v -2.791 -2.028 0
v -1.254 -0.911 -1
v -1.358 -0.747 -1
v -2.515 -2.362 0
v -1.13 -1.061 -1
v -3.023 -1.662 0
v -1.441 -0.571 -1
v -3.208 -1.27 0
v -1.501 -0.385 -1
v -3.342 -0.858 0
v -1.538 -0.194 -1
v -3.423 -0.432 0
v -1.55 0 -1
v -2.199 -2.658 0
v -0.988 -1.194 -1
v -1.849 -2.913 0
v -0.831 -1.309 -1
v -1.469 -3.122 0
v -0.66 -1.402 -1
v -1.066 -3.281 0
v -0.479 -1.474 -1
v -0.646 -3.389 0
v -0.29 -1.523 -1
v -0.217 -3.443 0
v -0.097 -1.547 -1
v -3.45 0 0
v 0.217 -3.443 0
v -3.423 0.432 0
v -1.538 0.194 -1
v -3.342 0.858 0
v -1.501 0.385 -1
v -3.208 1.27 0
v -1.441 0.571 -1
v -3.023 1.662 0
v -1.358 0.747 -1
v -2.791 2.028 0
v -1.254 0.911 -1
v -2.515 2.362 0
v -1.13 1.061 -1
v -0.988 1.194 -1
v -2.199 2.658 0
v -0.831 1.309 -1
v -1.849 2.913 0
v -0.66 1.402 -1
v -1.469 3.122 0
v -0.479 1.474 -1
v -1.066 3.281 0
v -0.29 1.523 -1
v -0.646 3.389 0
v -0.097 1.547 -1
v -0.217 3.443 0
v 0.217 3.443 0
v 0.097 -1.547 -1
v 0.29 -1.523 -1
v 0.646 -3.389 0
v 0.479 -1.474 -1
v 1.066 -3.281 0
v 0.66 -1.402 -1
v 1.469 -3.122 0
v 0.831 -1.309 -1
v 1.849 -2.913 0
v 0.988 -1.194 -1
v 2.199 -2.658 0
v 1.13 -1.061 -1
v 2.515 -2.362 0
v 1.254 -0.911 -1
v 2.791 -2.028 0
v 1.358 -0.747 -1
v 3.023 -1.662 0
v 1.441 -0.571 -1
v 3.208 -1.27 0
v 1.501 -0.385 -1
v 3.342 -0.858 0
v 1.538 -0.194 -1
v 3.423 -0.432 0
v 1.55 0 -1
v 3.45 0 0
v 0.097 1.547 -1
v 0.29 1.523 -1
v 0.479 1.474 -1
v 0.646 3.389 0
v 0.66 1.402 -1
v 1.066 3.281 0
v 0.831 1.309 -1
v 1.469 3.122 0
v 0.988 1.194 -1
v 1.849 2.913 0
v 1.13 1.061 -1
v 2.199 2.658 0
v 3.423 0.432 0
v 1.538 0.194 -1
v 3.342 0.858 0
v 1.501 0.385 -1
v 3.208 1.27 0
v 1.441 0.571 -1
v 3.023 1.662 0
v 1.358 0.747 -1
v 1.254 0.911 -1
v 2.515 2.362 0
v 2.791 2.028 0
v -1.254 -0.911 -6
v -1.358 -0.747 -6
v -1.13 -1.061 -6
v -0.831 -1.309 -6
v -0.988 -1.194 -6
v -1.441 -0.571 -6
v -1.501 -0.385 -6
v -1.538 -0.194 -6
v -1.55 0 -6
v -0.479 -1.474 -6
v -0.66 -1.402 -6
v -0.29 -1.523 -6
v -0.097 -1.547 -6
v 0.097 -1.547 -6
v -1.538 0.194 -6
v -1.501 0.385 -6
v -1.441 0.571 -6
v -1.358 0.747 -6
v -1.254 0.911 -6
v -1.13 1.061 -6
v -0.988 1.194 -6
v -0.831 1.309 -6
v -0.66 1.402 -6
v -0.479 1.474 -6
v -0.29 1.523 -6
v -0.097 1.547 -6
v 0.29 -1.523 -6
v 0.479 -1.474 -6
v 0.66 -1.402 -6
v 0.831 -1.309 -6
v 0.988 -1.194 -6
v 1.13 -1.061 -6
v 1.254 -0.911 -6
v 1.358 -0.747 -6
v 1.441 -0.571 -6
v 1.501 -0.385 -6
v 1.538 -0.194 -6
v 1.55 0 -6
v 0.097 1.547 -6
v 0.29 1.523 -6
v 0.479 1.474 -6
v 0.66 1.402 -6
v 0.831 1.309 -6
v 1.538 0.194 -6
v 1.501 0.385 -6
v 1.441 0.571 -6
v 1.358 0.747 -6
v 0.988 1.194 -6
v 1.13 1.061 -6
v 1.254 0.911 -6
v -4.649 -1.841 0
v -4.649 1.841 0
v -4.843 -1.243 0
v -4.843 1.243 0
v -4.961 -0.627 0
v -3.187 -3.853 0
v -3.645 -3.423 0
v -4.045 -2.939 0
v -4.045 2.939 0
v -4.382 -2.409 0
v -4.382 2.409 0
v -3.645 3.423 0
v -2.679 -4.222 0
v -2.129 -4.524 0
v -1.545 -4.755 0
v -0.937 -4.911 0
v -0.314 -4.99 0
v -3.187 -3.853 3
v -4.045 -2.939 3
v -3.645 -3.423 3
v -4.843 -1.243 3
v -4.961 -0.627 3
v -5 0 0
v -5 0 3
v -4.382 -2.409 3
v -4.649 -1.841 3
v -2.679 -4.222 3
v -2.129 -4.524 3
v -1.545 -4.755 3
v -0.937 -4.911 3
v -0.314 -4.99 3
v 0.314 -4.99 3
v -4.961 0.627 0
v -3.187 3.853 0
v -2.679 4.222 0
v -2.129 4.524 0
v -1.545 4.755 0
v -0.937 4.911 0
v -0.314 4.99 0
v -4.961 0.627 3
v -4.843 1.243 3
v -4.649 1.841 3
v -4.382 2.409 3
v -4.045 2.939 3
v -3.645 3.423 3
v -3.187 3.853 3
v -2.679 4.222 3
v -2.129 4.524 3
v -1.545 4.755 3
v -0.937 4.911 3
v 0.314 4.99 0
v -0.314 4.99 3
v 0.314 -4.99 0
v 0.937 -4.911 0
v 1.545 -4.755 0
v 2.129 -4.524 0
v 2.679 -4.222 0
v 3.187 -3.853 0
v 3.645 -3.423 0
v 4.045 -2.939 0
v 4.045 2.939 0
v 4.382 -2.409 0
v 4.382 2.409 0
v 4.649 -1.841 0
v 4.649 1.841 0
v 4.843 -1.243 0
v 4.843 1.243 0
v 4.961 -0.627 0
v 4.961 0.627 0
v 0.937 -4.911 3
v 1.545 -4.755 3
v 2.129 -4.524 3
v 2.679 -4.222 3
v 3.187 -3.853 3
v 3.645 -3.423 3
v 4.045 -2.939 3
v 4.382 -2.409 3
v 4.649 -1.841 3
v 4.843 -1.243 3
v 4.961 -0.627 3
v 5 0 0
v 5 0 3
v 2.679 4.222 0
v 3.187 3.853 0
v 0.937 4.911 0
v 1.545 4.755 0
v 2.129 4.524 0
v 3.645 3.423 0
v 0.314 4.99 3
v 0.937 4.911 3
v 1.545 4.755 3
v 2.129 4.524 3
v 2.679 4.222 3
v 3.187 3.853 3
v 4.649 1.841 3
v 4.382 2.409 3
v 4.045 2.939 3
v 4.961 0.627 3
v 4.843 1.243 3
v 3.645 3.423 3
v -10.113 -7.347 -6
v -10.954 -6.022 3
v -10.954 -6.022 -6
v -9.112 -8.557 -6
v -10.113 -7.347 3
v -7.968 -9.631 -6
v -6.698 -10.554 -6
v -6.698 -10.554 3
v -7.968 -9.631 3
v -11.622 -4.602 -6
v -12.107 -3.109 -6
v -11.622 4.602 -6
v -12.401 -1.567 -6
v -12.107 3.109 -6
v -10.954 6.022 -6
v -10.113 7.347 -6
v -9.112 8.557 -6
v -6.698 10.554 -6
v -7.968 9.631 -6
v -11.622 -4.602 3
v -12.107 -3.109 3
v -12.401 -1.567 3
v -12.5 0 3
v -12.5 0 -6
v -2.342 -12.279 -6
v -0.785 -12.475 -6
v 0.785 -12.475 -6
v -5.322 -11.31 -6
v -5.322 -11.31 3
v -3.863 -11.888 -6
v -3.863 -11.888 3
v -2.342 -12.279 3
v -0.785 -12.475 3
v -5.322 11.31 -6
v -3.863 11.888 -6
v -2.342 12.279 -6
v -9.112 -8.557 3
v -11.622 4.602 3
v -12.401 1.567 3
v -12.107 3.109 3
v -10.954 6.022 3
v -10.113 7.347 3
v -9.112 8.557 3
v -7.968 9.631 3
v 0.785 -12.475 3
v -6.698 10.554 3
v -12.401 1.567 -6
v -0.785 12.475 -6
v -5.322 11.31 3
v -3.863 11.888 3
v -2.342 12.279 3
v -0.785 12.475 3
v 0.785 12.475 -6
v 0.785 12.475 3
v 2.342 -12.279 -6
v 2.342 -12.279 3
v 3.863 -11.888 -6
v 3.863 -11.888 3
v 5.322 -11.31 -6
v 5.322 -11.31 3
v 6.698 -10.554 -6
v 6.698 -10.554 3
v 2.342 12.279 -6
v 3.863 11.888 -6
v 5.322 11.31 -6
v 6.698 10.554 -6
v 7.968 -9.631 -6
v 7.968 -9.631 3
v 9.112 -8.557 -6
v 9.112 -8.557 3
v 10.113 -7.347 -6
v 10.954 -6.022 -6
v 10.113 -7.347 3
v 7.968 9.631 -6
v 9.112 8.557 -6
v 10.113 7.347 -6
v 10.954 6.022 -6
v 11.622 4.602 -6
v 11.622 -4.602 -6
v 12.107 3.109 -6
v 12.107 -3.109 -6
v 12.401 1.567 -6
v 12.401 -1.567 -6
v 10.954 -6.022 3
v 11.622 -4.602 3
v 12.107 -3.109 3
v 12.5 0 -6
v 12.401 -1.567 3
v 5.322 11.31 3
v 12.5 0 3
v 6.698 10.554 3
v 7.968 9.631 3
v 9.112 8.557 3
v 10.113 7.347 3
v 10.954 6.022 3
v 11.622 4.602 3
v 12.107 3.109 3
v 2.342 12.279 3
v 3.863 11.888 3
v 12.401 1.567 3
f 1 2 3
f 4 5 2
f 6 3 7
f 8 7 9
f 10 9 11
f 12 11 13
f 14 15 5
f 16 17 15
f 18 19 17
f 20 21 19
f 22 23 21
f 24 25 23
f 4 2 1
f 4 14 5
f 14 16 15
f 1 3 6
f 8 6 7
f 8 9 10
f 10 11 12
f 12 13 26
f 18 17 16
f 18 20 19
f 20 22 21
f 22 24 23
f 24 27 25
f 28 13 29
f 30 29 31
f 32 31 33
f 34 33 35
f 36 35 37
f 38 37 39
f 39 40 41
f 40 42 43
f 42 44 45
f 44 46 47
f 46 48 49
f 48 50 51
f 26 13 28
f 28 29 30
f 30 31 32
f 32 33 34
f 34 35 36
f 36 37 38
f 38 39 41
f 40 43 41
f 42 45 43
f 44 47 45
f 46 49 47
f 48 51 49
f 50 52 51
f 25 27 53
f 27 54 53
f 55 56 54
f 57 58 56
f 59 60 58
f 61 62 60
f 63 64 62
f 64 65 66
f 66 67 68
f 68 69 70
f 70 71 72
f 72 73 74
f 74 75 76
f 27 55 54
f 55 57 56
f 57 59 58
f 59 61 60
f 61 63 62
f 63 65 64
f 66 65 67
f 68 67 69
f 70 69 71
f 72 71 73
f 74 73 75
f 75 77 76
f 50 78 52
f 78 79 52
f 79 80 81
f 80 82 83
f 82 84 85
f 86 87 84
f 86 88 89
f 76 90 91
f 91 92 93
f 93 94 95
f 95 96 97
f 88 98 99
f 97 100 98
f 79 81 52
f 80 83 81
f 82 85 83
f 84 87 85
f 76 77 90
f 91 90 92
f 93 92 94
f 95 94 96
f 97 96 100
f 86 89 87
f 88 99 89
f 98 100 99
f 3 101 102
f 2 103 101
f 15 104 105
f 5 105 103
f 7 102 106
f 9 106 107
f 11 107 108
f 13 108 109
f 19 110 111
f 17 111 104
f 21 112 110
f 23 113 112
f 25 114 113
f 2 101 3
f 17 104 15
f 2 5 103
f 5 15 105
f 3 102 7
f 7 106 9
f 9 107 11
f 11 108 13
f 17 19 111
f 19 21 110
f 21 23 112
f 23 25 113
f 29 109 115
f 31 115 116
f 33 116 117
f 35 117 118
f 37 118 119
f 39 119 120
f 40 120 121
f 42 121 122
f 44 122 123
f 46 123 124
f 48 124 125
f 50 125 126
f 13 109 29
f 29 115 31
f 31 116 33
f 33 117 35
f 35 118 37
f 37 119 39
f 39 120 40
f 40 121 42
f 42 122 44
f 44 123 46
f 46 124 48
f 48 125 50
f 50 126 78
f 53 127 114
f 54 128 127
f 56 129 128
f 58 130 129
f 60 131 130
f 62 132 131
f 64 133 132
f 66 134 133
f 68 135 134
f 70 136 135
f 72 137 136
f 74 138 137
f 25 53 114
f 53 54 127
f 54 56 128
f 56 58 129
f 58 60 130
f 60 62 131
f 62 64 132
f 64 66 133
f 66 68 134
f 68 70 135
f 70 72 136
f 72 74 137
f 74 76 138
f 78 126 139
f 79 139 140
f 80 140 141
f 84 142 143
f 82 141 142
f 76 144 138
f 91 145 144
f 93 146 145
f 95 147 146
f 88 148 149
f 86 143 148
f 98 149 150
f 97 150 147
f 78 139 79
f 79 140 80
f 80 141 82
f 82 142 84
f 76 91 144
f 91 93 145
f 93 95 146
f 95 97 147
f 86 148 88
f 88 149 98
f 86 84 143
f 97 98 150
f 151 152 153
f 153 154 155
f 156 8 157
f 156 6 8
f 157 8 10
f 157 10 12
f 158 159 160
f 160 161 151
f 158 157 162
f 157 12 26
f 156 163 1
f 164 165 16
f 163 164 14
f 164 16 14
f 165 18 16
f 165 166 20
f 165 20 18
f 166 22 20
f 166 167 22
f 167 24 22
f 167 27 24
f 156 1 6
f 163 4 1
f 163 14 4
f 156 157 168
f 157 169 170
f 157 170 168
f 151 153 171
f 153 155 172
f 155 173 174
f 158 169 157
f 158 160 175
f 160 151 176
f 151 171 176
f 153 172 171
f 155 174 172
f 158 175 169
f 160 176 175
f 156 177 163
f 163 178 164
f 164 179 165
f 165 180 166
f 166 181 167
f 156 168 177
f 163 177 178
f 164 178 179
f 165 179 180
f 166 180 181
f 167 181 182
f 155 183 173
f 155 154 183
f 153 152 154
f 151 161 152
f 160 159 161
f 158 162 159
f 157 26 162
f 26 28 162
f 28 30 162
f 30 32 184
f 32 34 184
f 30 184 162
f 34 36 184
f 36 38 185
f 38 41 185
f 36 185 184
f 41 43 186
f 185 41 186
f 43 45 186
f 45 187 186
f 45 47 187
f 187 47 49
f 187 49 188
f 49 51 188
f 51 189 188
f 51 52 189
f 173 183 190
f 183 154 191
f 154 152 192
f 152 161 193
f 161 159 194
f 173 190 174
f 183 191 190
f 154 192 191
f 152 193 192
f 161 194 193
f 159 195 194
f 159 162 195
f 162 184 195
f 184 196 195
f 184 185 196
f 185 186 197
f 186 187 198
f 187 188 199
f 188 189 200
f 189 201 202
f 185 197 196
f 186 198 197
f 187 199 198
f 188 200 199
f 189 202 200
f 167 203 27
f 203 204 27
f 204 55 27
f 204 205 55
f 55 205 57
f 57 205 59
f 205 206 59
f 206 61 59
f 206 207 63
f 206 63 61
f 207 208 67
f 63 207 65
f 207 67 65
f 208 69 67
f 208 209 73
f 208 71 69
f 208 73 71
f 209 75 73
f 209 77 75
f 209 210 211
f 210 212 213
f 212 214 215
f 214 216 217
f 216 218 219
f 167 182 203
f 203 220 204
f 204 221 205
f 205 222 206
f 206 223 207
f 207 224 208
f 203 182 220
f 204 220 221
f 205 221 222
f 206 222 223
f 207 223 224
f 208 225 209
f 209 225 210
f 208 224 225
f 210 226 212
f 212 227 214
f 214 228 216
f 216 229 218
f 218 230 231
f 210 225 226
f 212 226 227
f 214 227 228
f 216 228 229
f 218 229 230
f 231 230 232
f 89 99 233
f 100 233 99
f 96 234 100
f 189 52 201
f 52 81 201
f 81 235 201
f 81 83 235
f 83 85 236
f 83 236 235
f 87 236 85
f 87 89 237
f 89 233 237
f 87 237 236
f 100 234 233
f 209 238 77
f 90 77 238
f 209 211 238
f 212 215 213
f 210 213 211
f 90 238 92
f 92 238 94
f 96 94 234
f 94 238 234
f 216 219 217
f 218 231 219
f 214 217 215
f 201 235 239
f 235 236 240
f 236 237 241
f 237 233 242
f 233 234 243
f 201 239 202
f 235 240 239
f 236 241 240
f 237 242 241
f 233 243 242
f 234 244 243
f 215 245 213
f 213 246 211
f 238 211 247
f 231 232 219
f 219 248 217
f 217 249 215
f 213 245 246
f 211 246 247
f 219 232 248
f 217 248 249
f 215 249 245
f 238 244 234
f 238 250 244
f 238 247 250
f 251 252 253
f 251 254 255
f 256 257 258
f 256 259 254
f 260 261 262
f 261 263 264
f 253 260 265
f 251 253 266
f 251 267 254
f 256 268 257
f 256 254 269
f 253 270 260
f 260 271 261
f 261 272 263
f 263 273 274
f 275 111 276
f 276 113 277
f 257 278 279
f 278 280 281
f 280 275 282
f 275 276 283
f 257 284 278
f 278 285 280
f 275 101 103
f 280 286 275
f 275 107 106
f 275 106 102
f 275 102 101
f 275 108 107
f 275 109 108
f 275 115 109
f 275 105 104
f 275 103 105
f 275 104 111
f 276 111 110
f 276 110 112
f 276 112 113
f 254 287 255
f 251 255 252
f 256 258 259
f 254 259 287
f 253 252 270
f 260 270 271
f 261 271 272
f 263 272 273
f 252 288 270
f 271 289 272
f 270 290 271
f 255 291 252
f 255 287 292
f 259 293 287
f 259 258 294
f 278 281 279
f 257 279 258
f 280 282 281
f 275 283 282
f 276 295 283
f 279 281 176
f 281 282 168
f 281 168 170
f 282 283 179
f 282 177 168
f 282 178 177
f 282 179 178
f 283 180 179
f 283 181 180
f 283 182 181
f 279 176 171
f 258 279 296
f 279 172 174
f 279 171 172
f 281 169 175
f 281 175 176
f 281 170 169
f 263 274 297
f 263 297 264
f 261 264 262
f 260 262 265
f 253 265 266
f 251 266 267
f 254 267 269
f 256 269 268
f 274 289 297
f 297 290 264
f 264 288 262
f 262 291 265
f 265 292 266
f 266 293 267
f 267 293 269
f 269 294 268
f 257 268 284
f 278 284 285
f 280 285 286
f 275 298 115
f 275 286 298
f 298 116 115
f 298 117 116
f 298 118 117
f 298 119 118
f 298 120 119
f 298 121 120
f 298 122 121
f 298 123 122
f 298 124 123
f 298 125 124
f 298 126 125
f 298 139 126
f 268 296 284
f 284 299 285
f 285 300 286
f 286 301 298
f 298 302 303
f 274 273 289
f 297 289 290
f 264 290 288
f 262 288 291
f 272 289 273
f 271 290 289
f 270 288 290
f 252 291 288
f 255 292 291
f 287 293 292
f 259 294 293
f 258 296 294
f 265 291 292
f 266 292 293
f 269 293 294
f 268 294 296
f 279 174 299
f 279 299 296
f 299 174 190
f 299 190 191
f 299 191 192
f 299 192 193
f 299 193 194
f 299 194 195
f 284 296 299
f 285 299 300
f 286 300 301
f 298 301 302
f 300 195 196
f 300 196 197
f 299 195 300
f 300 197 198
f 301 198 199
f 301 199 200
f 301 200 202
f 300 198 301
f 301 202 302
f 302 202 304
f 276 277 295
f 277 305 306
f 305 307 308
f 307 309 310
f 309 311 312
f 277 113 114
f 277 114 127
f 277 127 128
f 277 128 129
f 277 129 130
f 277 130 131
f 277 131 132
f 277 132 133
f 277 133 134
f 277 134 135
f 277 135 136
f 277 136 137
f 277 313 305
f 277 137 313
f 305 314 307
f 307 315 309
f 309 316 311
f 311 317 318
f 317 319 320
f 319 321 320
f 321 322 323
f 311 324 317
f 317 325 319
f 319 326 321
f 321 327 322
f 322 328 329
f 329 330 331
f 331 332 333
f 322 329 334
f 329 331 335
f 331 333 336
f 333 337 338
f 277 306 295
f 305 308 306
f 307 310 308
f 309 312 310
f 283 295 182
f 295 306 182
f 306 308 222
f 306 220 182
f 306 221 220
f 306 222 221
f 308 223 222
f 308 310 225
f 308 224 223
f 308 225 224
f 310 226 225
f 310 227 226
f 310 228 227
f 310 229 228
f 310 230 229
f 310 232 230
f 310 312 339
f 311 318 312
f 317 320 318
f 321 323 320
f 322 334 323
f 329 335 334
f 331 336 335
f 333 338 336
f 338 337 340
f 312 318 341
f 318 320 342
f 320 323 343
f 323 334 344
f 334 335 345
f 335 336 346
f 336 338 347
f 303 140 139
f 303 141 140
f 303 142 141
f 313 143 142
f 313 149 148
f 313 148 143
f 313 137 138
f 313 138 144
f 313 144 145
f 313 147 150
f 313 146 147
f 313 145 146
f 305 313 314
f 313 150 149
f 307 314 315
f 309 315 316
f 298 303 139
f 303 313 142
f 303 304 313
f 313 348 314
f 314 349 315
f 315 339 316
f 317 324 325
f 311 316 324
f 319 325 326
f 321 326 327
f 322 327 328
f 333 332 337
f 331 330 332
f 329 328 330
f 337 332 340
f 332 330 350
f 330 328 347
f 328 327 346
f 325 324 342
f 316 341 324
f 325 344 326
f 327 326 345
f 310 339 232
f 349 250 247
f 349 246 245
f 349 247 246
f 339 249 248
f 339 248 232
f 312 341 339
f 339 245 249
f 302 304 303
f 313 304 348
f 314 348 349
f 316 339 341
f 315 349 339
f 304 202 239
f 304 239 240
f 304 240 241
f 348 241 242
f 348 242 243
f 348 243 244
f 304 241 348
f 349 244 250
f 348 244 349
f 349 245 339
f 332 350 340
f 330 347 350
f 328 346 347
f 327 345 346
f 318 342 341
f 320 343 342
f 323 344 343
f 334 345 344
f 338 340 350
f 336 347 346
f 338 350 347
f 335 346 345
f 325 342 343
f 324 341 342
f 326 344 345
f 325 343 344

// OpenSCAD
$fn = 50;

difference() {
	union() {
		translate(v = [0, 0, -6.0]) {
			cylinder(h = 9, r = 12.5);
		}
	}
	union() {
		translate(v = [0, 0, 0]) {
			rotate(a = [0, 0, 0]) {
				difference() {
					union() {
						translate(v = [0, 0, -9.0]) {
							cylinder(h = 9, r = 1.25);
						}
						translate(v = [0, 0, -1.0]) {
							cylinder(h = 1.0, r1 = 1.55, r2 = 3.45);
						}
						translate(v = [0, 0, -9.0]) {
							cylinder(h = 9, r = 1.55);
						}
						translate(v = [0, 0, -9.0]) {
							cylinder(h = 9, r = 1.25);
						}
					}
					union();
				}
			}
		}
		#cylinder(h = 3, r = 5.0);
	}
}
